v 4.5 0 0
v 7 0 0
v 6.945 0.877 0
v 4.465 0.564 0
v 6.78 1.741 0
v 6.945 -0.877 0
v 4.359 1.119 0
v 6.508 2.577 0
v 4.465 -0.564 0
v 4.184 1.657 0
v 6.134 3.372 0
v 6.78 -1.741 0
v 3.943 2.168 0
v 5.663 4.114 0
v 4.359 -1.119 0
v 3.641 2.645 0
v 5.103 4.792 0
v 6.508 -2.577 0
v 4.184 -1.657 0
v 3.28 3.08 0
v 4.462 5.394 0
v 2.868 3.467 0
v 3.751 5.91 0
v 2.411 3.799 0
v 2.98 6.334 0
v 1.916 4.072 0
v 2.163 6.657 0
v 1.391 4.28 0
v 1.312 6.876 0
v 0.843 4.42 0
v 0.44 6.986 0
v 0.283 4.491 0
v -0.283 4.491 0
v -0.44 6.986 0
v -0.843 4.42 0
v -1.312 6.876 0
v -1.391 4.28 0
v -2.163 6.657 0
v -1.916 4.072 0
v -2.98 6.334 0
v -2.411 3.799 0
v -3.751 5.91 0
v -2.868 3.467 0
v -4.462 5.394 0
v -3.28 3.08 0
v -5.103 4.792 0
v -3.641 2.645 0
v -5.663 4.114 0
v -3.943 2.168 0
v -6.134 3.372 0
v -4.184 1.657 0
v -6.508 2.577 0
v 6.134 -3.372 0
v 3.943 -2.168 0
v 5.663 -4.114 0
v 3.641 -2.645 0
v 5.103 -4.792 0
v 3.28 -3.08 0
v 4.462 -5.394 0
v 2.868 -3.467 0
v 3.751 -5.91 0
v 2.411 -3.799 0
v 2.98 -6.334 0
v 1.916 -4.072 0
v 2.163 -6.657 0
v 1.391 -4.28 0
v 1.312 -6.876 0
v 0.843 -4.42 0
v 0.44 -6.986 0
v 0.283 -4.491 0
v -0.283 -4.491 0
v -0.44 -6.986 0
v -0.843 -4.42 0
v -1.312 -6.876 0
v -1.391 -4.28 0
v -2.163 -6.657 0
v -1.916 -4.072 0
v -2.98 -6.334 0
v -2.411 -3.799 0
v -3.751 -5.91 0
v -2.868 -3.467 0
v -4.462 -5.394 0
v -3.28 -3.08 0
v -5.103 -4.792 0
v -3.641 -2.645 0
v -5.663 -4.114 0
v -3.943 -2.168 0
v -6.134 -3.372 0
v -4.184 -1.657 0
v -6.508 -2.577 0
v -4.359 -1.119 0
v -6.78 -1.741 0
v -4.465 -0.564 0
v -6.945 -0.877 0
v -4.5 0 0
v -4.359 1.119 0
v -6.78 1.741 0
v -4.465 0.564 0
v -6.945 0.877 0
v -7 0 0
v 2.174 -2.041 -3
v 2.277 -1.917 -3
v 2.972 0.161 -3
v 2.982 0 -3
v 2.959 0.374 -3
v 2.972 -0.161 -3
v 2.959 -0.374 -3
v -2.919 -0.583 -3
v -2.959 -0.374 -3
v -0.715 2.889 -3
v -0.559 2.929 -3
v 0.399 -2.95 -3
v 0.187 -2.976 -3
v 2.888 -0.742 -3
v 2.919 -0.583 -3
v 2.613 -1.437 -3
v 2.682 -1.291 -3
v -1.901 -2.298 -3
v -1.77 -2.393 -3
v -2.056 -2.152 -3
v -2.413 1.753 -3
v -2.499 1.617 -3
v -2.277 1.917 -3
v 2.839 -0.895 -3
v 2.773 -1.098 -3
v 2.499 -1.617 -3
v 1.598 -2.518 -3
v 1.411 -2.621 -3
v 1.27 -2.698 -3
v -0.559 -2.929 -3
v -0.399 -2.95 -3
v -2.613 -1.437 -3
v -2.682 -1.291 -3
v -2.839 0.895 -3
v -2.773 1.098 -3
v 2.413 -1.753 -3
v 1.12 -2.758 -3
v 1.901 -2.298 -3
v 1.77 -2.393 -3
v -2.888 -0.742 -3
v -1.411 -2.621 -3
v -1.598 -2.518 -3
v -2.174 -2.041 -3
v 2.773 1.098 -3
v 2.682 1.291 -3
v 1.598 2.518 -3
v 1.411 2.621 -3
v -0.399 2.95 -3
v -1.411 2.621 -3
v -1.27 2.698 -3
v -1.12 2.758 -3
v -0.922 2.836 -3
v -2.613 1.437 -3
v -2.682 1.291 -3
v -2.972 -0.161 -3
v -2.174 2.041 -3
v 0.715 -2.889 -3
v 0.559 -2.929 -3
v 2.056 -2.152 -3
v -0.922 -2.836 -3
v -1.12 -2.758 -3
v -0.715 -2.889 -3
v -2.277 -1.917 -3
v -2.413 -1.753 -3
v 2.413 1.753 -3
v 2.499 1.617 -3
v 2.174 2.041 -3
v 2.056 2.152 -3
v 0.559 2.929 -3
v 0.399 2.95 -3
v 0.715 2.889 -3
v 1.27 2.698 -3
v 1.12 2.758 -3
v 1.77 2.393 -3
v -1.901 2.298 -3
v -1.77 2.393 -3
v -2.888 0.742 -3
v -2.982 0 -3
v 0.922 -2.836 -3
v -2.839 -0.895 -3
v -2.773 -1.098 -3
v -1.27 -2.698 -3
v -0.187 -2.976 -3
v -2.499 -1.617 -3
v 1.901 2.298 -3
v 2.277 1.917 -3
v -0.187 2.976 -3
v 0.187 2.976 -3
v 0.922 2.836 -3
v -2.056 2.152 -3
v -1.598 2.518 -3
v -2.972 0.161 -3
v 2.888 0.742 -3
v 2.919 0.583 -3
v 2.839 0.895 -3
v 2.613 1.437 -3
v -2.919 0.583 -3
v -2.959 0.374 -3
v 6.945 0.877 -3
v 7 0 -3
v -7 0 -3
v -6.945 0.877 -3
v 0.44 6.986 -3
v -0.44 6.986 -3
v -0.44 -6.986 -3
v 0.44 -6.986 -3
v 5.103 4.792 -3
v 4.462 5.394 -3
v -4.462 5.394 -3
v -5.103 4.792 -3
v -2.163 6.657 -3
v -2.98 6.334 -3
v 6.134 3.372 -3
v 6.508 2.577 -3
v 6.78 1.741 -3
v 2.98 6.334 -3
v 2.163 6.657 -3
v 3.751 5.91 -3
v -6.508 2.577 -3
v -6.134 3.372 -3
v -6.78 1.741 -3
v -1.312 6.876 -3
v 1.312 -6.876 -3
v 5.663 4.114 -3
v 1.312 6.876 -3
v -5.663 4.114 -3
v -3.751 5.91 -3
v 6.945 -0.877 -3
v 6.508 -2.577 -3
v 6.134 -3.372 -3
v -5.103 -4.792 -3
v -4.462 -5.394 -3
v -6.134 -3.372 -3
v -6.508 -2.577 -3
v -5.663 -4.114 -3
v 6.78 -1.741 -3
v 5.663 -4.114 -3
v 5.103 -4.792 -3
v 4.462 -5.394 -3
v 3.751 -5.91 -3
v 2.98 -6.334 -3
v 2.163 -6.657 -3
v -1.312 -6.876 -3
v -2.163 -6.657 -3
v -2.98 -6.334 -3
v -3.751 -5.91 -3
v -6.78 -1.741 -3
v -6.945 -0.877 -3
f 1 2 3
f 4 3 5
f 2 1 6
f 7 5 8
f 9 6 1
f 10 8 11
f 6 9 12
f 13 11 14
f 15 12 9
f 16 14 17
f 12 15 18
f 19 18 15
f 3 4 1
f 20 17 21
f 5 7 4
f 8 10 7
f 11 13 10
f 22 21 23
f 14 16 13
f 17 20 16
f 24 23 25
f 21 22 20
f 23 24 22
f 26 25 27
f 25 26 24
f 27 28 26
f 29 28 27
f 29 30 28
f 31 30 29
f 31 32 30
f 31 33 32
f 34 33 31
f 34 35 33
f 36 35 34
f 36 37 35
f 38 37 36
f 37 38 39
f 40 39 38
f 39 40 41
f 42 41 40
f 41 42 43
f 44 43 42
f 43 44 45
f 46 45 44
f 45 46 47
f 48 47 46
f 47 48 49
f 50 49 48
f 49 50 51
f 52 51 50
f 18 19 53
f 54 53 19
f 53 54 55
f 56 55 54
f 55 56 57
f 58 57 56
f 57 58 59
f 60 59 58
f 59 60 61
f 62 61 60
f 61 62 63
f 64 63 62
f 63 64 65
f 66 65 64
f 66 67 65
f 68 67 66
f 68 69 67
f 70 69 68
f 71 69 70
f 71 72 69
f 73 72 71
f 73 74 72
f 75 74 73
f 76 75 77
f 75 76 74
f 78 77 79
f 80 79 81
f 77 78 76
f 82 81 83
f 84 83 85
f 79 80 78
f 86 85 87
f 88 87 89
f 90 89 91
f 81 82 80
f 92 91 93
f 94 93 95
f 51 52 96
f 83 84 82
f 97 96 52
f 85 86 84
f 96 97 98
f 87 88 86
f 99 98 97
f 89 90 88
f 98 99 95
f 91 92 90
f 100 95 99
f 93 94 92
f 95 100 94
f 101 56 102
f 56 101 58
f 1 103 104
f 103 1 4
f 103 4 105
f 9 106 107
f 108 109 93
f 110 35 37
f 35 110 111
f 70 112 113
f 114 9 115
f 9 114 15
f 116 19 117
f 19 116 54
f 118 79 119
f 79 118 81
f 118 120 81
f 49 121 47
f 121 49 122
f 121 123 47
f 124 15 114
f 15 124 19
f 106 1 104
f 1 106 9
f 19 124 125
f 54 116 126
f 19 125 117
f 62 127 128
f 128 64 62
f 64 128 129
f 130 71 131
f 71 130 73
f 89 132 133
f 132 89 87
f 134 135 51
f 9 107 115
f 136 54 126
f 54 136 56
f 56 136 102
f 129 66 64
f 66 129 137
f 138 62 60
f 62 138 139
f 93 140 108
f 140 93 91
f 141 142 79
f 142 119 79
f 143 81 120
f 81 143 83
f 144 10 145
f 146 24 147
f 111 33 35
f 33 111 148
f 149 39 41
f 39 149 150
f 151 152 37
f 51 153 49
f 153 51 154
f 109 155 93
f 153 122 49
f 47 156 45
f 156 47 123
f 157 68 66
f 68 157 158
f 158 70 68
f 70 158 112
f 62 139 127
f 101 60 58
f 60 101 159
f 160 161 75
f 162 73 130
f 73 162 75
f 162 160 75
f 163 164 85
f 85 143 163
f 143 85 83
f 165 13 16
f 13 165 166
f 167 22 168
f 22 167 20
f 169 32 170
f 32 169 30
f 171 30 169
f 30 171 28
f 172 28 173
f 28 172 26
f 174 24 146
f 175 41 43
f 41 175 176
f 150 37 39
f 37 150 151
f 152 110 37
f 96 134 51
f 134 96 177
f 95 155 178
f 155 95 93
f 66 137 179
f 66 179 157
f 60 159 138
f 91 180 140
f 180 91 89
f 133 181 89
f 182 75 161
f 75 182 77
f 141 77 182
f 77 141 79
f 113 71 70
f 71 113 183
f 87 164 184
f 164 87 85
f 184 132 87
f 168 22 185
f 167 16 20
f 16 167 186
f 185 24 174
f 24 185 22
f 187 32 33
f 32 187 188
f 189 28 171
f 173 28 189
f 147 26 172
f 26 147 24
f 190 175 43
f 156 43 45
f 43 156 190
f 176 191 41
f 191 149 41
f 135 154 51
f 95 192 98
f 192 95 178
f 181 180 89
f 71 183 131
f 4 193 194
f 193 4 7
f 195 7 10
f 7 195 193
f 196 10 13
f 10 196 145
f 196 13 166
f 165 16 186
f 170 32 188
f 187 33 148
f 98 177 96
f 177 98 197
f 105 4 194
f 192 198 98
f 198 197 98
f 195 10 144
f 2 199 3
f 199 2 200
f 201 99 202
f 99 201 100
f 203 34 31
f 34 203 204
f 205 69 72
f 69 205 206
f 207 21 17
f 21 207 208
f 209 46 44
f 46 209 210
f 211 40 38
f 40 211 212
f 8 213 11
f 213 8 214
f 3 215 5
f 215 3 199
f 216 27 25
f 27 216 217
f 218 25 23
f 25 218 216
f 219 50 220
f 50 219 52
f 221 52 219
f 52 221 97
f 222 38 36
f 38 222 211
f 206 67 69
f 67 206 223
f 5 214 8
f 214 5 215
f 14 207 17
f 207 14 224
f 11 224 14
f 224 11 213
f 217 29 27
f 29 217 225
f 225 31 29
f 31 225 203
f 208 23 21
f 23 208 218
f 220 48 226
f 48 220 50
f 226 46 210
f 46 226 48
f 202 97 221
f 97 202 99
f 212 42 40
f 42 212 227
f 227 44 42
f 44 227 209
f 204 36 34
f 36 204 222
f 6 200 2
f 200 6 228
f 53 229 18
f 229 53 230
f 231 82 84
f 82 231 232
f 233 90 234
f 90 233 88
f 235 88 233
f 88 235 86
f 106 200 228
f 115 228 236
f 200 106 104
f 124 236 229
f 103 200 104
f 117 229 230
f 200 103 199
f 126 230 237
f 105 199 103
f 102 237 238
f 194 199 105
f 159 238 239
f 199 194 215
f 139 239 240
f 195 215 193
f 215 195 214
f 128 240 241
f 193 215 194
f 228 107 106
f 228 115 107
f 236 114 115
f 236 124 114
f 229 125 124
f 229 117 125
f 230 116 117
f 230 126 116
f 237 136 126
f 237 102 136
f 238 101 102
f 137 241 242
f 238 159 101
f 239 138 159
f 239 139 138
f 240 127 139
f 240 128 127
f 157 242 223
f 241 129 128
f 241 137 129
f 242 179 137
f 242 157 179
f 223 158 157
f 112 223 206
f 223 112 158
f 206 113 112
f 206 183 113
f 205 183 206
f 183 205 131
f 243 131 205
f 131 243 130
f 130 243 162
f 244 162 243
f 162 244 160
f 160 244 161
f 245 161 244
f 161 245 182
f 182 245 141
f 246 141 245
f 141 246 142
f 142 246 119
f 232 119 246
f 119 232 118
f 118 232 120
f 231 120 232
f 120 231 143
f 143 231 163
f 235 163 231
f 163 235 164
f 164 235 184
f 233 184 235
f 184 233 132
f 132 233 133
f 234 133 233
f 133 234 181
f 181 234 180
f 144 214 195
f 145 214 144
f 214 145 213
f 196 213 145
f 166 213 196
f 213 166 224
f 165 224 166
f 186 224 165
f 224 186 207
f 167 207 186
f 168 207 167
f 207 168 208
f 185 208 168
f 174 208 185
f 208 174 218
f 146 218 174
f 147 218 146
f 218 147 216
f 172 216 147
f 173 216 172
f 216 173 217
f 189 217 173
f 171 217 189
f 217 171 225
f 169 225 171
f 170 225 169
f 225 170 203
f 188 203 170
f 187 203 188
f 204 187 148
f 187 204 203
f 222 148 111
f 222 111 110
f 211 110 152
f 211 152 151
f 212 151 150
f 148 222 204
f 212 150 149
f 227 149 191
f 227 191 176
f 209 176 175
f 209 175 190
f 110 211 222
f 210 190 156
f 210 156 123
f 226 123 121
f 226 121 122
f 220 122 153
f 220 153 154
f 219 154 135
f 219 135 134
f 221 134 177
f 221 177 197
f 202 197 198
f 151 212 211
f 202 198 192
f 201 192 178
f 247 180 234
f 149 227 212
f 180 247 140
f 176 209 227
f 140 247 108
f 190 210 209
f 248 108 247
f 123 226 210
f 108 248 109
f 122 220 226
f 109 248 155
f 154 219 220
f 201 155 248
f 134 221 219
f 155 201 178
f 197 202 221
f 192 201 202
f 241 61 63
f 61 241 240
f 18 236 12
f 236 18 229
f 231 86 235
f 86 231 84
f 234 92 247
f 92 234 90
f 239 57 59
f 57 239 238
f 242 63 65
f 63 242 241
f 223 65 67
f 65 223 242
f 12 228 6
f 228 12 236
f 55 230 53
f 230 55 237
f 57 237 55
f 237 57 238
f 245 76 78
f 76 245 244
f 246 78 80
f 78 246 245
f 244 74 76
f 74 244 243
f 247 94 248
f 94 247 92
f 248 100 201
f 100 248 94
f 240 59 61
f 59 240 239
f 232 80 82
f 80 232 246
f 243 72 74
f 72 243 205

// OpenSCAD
$fn = 50;


difference() {
	union() {
		translate(v = [0, 0, -3.0000000000]) {
			cylinder(h = 3, r = 7.0000000000);
		}
		cylinder(h = 0, r = 17.0000000000);
	}
	union() {
		translate(v = [0, 0, 0]) {
			rotate(a = [0, 0, 0]) {
				difference() {
					union() {
						#translate(v = [0, 0, -3.0000000000]) {
							cylinder(h = 3, r = 2.2500000000);
						}
						#translate(v = [0, 0, -4.2000000000]) {
							cylinder(h = 4.2000000000, r = 7.0000000000, r1 = 2.3750000000, r2 = 4.5000000000);
						}
						#translate(v = [0, 0, -3.0000000000]) {
							cylinder(h = 3, r = 2.3750000000);
						}
						#translate(v = [0, 0, -3.0000000000]) {
							cylinder(h = 3, r = 2.2500000000);
						}
					}
					union();
				}
			}
		}
	}
}
